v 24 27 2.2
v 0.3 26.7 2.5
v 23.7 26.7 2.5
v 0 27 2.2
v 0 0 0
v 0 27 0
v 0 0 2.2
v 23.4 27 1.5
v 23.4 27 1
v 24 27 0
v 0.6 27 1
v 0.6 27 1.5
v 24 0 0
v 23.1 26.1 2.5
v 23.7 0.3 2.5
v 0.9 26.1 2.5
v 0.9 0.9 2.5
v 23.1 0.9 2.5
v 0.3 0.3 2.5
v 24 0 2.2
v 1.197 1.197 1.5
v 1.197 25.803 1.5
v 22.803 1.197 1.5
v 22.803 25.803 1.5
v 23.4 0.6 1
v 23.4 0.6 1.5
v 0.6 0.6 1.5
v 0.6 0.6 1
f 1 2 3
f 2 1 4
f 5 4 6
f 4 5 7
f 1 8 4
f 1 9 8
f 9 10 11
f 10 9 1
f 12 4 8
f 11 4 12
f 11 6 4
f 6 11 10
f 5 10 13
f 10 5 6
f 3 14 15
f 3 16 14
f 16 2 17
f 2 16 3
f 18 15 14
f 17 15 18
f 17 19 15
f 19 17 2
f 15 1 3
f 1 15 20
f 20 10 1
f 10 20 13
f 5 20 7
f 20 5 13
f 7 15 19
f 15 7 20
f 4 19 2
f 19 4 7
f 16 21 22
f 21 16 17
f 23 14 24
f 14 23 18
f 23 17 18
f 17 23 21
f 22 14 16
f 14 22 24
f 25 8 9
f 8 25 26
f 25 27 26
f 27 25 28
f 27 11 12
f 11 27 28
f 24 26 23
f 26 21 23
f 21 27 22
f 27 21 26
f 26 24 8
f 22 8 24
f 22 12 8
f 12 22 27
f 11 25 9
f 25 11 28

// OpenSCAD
// Photo_Frame_Small_P.stl  -  Store Versile room frame (Rev C)
// Quantity: 4   Filament: Gold silk (e.g. PLA Silk+ Gold)
// Print: layer 0.12 mm, infill 100%, 2 walls, brim 0 mm, NO supports
// Orientation: back  (lying on its back, front face up)
// Notes: Gold face up (ironing on). Photo slot opens at the top.
// The library draws parts with their front toward +Y; mirror([0,1,0]) makes the real
// part face the viewer correctly (see build.py). Edit dimensions in versile_parts.scad.
use <../versile_parts.scad>

rotate([-90, 0, 0]) mirror([0, 1, 0]) photo_frame_small_p();
